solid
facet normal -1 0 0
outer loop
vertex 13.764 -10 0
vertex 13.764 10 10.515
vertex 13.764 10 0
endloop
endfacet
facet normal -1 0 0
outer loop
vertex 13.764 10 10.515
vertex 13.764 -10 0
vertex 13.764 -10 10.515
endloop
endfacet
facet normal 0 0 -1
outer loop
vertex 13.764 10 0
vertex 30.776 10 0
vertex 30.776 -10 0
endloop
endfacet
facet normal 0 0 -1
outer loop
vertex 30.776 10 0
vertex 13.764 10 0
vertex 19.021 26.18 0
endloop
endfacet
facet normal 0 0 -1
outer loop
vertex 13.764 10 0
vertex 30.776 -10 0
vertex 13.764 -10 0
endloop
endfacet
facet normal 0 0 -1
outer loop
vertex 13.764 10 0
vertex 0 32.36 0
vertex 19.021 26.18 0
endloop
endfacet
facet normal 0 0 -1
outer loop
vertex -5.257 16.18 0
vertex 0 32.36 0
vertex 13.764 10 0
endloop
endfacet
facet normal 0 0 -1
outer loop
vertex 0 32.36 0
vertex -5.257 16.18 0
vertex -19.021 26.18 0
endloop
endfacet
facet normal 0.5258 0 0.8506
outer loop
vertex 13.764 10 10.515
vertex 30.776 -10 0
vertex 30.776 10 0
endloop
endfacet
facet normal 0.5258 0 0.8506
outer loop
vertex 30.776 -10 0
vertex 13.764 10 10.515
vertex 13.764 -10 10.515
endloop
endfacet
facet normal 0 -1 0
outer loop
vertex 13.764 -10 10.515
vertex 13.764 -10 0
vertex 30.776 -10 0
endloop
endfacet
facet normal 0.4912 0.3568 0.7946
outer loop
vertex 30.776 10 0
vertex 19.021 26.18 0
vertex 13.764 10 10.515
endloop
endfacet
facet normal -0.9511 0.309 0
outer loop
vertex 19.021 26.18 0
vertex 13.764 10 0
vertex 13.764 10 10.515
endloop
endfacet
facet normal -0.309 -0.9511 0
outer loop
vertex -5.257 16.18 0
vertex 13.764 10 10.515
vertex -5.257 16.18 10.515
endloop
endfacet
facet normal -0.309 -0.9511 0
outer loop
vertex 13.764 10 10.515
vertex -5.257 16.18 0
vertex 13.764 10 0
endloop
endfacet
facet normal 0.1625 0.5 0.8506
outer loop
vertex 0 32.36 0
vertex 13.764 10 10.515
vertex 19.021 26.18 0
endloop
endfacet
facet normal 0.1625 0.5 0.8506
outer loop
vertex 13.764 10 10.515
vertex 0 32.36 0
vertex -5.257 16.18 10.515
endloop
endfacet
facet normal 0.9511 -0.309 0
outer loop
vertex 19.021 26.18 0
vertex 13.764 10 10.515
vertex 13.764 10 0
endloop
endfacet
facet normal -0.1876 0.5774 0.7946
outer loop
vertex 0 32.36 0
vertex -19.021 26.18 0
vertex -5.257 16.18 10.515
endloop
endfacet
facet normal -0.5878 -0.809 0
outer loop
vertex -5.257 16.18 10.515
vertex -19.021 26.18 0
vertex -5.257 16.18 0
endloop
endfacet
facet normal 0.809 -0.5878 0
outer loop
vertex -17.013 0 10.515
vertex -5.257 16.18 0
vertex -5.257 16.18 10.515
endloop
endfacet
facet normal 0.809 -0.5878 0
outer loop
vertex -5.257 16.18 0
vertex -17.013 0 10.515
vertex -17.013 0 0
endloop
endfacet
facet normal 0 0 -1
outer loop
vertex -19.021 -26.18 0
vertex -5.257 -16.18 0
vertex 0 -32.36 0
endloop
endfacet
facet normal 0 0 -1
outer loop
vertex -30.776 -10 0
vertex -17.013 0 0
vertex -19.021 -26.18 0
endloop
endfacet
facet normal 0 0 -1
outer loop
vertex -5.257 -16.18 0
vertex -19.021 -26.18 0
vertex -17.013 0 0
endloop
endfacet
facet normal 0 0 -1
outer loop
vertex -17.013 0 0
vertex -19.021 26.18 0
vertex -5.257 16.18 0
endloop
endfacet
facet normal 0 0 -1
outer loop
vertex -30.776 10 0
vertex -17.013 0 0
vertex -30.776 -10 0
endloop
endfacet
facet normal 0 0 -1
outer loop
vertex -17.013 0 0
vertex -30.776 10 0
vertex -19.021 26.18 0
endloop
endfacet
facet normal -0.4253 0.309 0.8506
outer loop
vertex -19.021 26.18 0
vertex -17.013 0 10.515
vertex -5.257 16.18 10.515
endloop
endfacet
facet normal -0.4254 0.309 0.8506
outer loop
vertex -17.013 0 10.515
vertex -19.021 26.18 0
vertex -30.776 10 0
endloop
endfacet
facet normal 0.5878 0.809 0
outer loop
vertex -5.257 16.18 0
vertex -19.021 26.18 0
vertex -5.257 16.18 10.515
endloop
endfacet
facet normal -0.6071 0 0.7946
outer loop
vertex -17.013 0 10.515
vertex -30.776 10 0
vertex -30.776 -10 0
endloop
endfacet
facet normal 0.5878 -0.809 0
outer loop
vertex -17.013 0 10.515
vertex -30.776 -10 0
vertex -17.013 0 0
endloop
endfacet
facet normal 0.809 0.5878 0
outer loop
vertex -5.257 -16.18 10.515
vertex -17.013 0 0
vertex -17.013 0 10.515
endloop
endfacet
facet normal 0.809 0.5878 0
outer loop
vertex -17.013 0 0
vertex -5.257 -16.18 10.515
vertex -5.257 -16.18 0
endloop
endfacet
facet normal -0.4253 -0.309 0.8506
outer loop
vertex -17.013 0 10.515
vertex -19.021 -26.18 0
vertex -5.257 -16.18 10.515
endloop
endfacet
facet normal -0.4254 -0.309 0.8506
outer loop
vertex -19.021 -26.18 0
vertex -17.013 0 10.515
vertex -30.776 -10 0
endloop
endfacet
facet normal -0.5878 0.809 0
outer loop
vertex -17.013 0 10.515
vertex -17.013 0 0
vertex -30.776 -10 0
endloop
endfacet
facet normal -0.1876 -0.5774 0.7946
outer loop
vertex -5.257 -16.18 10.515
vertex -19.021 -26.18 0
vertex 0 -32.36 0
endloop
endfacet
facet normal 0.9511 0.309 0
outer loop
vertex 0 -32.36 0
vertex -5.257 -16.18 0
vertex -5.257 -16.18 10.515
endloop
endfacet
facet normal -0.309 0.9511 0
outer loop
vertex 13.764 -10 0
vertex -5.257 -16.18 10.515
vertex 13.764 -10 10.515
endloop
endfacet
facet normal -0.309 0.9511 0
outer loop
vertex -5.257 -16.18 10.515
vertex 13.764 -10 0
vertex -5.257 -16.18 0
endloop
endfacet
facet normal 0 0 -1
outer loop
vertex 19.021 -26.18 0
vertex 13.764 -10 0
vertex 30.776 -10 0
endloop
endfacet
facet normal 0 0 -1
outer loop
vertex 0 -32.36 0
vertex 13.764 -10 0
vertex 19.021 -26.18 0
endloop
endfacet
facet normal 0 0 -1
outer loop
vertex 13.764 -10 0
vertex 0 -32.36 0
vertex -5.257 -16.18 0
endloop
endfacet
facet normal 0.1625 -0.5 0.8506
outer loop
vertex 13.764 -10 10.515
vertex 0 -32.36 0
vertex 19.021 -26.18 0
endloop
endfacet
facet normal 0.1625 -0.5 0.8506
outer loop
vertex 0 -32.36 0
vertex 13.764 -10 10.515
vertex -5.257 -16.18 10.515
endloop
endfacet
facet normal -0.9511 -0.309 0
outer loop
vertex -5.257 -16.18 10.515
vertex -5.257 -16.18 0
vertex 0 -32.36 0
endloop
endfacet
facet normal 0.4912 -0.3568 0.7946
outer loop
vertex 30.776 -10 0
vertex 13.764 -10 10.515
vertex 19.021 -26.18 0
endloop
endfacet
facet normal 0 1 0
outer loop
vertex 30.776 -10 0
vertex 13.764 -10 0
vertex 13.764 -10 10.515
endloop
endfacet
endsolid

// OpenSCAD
connector_angle=31.72;
face_size=20;
sides=5;
sides_to_draw = sides;

connector_height = face_size     * sin(connector_angle);
connector_width  = face_size     * cos(connector_angle);
inner_radius     = (face_size/2) / sin(360/(sides*2));
inner_apothem    = (face_size/2) / tan(360/(sides*2));
outer_radius     = inner_radius  + connector_width;
outer_apothem    = inner_apothem + connector_width;
angle            = (360/sides);


assemble_connector();

module assemble_connector(){
	connector();	
}

module connector(){
	for (i=[0:sides_to_draw-1]){
		rotate([0,0,i*angle]){	
			translate([inner_apothem,-face_size/2,0]){
				strut_interface();
				translate([0,face_size,0]){corner_bevel(angle);}
				
			}
		}
	}
}

module strut_interface(){
	points = [
  	[0,0,0],//0 
    [0,face_size,0],//3
	 	[connector_width,face_size,0],//2 
		[connector_width,0,0],//1 	  
		[0,face_size,connector_height],
		[0,0,connector_height]	
	];     
	faces = [
  	[0,1,2,3],
  	[0,5,1],
  	[1,5,4,2],
	  [2,4,3],  
		[3,4,5,0]
	];	
	polyhedron( points, faces );		
}

module corner_bevel(){
	
	cw=connector_width;
	ch=connector_height;
	ax = sin(angle) * connector_width;
	ay = sqrt(pow(connector_width,2) - pow(ax,2)); 
	
	points = [
  	[  0,  0,  0 ],//0 - inside bottom
  	[ cw,  0,  0 ],//1 - front corner
  	[ ay, ax,  0 ],//2 - side corner
  	[  0,  0, ch ] //3 - inside top
	]; 
    
	faces = [
  	[0,1,2],  // right
  	[0,3,1],  // left
		[1,3,2],// top
	  [0,2,3],  // bottom
	]; 
  polyhedron( points, faces );	
}

module center_area(){
	if(sides%2==0){
		rotate([0,0,360/(sides*2)])linear_extrude(height=connector_height)circle(r=inner_radius,$fn=sides);
	}
	else{
		linear_extrude(height=connector_height)circle(r=inner_radius,$fn=sides);	
	}	
}
